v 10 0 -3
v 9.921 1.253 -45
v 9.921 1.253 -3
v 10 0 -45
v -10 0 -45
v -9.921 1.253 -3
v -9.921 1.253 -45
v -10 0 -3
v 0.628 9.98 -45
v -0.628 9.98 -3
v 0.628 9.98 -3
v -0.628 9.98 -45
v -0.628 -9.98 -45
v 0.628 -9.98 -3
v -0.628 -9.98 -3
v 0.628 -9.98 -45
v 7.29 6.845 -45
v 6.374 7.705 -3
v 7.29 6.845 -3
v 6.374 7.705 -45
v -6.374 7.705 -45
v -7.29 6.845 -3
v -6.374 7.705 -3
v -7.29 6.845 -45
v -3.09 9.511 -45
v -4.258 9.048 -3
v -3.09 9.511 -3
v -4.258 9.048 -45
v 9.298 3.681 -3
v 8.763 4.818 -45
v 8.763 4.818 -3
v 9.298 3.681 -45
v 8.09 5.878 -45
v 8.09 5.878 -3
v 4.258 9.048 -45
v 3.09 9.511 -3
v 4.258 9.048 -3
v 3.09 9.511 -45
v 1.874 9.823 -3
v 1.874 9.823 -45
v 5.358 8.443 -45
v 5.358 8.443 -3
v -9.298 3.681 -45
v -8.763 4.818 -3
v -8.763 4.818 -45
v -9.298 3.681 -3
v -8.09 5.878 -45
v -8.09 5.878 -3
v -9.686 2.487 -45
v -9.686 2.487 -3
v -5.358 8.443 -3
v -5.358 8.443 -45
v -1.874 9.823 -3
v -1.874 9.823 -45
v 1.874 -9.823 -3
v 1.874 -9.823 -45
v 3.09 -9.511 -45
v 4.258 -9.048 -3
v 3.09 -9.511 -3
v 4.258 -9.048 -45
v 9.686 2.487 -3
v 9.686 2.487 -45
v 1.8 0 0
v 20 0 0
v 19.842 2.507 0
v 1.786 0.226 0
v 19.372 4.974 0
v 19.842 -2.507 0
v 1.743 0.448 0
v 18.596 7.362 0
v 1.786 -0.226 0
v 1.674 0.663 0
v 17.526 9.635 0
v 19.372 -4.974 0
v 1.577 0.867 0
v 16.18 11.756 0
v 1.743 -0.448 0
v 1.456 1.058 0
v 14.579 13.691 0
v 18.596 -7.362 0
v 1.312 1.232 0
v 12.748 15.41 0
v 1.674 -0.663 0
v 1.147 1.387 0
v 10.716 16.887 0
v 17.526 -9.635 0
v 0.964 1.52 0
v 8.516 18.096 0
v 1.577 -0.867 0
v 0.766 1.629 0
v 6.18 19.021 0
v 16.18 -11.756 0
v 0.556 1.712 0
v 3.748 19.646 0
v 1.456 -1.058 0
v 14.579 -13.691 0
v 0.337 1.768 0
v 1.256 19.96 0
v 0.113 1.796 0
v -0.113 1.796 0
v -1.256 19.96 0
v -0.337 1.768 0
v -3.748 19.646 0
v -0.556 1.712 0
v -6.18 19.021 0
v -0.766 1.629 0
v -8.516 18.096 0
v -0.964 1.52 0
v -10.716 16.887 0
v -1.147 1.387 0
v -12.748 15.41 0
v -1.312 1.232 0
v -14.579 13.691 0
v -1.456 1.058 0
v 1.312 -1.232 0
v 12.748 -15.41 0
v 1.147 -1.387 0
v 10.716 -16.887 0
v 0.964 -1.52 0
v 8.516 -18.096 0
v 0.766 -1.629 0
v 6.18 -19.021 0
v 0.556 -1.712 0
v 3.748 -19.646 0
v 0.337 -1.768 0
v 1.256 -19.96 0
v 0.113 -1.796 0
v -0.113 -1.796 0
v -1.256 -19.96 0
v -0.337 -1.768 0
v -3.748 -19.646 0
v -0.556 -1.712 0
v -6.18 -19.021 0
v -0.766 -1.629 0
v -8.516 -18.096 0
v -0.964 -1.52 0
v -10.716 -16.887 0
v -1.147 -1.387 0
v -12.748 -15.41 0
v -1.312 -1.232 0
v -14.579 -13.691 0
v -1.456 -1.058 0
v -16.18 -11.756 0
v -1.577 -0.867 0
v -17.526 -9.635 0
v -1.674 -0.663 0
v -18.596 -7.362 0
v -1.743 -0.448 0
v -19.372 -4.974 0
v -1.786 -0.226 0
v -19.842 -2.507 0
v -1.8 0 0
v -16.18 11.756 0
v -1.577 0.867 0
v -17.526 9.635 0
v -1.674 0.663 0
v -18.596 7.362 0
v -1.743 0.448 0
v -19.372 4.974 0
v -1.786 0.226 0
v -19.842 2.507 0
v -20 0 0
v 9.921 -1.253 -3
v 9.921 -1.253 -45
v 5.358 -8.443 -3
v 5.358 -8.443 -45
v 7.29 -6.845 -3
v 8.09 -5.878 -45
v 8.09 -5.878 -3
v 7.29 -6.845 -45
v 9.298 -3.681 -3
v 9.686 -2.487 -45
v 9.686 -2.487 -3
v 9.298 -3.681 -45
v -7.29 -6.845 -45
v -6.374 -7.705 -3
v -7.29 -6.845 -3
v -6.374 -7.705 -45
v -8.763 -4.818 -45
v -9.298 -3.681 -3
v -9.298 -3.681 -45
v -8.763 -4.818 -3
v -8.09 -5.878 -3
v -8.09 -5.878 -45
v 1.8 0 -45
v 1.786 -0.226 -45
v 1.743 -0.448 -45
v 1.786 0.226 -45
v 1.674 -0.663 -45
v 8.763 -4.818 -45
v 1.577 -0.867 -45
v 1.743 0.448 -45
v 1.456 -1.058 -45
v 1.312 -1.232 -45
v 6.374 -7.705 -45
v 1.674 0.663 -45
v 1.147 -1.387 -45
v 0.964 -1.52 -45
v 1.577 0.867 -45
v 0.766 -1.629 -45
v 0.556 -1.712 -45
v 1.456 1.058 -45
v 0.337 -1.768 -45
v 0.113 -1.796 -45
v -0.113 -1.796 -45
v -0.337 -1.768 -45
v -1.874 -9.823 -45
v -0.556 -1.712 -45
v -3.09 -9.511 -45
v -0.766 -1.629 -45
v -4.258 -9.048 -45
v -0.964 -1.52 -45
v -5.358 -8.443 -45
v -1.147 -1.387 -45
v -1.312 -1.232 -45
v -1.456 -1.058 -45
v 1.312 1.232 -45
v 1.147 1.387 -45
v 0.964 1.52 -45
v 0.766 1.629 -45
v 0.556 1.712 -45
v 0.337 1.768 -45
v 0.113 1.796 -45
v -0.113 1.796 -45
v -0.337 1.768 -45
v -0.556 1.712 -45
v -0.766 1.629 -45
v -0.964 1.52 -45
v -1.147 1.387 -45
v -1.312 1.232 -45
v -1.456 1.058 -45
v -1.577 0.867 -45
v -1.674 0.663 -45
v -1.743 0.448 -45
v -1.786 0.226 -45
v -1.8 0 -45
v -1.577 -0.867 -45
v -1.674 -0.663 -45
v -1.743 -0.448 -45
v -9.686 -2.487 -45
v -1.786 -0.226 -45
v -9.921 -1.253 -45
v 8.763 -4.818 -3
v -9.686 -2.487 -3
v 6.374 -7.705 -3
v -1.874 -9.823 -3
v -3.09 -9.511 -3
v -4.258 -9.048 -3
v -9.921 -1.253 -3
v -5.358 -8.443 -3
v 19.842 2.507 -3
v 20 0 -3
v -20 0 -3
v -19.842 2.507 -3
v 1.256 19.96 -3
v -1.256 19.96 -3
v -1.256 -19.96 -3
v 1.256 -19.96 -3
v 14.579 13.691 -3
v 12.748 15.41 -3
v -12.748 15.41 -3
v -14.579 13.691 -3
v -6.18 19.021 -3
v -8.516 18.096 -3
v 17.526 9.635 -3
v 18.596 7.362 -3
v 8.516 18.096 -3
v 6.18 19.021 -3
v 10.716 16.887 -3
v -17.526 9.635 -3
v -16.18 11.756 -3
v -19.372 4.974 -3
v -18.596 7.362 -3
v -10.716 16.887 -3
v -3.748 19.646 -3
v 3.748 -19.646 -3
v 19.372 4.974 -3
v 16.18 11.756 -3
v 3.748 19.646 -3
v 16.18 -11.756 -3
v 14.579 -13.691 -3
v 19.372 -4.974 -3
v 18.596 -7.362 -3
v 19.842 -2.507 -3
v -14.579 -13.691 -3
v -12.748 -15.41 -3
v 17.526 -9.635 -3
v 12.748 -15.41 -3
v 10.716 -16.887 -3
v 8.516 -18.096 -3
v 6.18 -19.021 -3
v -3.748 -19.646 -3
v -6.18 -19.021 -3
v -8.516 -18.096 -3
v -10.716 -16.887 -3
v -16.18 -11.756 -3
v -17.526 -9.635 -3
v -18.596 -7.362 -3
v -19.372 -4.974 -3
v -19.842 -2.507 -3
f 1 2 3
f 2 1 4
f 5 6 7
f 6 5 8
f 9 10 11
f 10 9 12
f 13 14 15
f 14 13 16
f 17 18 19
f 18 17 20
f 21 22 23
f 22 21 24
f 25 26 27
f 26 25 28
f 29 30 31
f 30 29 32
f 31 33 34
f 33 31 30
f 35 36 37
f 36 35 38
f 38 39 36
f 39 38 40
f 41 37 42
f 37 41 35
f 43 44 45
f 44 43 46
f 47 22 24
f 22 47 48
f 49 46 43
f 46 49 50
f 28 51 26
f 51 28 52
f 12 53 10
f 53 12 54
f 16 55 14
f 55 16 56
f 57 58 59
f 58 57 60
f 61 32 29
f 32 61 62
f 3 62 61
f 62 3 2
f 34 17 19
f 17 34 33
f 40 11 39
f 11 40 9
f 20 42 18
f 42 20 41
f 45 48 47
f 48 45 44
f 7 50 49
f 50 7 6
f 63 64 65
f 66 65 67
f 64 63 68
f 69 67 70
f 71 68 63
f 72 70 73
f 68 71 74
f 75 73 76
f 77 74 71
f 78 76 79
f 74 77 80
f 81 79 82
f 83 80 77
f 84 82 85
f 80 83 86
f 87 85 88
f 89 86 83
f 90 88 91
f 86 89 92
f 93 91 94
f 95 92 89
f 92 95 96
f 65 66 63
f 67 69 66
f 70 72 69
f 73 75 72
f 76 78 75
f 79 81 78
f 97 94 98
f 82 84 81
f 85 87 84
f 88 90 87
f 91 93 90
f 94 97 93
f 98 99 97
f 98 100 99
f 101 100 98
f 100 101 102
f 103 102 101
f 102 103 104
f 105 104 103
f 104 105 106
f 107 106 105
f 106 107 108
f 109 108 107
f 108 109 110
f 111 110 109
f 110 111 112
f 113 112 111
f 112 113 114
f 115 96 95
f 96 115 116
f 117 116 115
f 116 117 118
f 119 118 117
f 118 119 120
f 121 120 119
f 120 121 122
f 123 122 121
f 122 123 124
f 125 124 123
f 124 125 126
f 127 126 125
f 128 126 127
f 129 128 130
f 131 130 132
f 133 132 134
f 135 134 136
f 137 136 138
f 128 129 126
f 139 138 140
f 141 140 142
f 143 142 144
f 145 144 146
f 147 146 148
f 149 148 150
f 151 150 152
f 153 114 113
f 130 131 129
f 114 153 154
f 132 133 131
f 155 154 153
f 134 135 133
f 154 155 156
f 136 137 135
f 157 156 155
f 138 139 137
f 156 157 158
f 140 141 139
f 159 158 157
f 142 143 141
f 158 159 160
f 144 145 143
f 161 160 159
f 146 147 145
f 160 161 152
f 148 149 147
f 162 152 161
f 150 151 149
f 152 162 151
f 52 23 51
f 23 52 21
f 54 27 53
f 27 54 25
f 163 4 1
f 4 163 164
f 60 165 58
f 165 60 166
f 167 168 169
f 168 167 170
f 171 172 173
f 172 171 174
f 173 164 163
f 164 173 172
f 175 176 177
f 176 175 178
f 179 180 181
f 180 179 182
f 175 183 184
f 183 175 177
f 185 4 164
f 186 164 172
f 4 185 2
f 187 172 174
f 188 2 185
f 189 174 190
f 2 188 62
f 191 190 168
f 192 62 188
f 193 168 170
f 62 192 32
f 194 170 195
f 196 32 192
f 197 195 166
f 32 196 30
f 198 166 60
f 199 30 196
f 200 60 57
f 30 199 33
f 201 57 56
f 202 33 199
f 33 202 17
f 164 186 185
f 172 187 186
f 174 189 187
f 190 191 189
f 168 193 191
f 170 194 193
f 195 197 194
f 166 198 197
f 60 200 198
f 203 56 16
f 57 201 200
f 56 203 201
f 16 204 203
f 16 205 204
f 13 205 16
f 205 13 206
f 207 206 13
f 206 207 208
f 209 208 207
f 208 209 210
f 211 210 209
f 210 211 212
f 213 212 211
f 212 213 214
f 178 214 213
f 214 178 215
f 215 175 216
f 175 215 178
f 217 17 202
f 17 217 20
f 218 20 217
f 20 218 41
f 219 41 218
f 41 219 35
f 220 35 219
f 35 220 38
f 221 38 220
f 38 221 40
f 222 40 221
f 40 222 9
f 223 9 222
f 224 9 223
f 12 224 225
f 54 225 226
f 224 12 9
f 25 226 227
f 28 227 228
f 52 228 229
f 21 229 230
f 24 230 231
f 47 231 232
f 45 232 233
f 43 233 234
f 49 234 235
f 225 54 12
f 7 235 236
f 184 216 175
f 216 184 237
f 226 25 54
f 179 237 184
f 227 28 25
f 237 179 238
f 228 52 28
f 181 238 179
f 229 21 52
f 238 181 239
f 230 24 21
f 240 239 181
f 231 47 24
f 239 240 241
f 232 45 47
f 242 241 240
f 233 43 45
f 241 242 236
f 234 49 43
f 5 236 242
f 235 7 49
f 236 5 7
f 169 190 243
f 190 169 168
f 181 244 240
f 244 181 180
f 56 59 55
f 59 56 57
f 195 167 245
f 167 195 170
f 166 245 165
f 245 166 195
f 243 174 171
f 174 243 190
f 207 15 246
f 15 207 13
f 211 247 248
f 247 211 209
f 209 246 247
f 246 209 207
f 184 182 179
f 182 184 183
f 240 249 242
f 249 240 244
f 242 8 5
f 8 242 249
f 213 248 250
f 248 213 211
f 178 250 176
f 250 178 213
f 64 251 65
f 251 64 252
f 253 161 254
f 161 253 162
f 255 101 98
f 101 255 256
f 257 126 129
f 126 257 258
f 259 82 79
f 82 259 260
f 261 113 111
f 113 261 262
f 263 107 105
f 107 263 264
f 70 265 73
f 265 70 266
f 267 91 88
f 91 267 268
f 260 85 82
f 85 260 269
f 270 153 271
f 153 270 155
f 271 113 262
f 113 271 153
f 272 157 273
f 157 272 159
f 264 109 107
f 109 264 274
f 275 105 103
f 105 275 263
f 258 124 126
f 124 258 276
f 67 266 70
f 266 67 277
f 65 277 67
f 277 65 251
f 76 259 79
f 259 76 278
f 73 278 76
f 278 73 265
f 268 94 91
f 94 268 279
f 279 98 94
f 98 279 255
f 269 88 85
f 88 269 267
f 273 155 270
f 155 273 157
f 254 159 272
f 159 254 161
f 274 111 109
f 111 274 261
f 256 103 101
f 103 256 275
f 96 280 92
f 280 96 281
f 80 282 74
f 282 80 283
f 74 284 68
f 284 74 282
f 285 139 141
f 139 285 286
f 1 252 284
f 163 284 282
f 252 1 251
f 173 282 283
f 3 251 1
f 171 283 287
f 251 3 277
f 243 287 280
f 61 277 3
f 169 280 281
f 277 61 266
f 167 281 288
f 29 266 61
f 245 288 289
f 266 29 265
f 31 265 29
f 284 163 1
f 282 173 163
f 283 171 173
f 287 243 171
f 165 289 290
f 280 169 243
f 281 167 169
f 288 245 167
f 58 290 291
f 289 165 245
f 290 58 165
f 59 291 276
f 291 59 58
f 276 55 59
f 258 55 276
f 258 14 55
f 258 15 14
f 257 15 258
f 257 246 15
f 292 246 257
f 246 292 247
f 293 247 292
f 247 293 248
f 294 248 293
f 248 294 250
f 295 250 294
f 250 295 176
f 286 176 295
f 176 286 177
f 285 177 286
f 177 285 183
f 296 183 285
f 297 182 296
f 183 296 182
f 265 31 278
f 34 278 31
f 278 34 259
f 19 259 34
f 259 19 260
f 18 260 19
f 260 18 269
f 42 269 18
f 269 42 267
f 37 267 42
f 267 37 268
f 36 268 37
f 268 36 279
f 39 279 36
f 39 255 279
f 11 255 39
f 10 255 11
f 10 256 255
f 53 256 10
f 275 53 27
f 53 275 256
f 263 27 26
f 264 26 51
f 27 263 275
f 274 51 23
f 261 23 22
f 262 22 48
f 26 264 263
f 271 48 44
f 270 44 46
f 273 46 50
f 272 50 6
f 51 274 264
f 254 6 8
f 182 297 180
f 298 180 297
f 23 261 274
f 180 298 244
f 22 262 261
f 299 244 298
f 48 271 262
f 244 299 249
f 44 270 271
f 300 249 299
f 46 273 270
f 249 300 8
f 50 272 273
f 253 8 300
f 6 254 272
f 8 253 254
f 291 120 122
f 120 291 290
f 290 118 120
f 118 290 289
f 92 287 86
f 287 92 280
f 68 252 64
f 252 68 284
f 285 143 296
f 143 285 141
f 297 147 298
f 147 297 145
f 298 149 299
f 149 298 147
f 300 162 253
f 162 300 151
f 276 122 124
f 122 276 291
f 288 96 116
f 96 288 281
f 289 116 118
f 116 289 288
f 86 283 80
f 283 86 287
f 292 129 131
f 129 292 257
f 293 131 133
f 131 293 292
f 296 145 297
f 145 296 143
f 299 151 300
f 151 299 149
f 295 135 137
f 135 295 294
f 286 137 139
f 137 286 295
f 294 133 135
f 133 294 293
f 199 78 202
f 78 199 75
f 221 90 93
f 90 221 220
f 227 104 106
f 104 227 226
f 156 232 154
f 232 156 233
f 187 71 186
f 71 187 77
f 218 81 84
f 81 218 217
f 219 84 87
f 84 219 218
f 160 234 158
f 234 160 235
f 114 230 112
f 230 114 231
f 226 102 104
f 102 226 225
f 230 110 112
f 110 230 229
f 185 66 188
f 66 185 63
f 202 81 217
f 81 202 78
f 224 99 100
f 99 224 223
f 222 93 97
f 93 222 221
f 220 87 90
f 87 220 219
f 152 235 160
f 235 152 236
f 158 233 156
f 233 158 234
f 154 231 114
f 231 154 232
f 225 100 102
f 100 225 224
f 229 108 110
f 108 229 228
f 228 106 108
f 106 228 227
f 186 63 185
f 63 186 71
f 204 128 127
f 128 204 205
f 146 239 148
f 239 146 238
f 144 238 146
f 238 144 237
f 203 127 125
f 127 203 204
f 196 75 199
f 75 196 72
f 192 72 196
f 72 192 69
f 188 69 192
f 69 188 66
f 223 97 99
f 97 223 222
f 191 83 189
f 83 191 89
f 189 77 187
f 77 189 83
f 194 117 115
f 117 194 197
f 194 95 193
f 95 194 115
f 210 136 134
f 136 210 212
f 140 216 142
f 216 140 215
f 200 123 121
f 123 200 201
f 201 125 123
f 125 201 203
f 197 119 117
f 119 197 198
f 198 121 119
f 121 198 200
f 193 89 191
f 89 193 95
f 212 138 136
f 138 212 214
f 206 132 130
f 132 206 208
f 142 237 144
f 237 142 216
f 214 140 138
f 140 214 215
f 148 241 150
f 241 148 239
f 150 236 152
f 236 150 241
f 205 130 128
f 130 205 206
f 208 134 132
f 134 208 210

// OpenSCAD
$fn = 50;


difference() {
	union() {
		translate(v = [0, 0, -45.0000000000]) {
			cylinder(h = 45, r = 10.0000000000);
		}
		translate(v = [0, 0, -3.0000000000]) {
			cylinder(h = 3, r = 20.0000000000);
		}
	}
	union() {
		#translate(v = [0, 0, -45]) {
			cylinder(h = 45, r = 1.8000000000);
		}
	}
}
